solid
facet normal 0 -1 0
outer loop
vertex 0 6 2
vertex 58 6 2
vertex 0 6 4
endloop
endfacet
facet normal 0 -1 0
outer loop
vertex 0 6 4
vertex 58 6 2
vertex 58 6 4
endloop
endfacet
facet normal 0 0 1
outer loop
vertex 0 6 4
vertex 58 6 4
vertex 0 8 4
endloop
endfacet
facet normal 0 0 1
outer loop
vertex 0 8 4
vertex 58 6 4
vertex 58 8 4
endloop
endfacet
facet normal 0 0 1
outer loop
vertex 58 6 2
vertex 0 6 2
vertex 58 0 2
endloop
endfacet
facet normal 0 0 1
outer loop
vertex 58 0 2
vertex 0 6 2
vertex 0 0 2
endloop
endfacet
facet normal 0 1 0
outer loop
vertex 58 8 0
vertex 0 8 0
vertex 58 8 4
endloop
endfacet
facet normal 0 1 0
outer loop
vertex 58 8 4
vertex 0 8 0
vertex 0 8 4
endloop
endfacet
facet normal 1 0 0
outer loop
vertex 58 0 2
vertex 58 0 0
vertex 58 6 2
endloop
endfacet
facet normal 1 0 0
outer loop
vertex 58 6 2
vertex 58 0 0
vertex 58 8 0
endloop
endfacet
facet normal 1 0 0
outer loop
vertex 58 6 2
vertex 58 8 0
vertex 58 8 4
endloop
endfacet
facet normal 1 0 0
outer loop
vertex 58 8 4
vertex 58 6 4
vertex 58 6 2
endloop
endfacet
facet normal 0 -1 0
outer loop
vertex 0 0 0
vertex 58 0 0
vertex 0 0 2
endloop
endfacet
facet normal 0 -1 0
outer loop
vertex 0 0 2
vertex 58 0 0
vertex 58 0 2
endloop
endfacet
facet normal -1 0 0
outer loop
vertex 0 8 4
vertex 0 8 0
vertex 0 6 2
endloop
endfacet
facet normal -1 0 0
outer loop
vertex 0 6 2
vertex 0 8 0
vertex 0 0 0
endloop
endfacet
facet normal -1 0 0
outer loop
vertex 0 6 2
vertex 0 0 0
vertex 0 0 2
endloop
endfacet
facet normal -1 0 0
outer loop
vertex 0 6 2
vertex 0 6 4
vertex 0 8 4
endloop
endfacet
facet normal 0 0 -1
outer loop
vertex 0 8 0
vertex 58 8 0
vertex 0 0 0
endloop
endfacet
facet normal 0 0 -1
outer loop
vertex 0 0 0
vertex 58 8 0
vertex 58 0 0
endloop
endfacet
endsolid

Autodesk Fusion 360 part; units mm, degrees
sketch "Esquisse1" plane through (0, 0, 0) normal (0, 0, 1) x (1, 0, 0)
  line L0 (0, 0) -> (58, 0)
  line L1 (58, 0) -> (58, 8)
  line L2 (58, 8) -> (0, 8)
  line L3 (0, 8) -> (0, 0)
  dimension "d1" = 58
  dimension "d2" = 8
extrude "Extrusion1" add sketch "Esquisse1" along normal blind 2
sketch "Esquisse2" plane through (0, 0, 2) normal (0, 0, 1) x (-1, 0, 0)
  line L0 (0, -8) -> (0, 0)
  line L1 (0, 0) -> (-58, 0)
  line L2 (-58, 0) -> (-58, -8)
  line L3 (-58, -8) -> (0, -8)
  line L4 (0, -8) -> (-58, -8)
  line L5 (-58, -8) -> (-58, -6)
  line L6 (-58, -6) -> (0, -6)
  line L7 (0, -6) -> (0, -8)
  dimension "d5" = 2
extrude "Extrusion2" add sketch "Esquisse2" along normal blind 2 contours L0 L2 L3 L4 L5 L6 L7
